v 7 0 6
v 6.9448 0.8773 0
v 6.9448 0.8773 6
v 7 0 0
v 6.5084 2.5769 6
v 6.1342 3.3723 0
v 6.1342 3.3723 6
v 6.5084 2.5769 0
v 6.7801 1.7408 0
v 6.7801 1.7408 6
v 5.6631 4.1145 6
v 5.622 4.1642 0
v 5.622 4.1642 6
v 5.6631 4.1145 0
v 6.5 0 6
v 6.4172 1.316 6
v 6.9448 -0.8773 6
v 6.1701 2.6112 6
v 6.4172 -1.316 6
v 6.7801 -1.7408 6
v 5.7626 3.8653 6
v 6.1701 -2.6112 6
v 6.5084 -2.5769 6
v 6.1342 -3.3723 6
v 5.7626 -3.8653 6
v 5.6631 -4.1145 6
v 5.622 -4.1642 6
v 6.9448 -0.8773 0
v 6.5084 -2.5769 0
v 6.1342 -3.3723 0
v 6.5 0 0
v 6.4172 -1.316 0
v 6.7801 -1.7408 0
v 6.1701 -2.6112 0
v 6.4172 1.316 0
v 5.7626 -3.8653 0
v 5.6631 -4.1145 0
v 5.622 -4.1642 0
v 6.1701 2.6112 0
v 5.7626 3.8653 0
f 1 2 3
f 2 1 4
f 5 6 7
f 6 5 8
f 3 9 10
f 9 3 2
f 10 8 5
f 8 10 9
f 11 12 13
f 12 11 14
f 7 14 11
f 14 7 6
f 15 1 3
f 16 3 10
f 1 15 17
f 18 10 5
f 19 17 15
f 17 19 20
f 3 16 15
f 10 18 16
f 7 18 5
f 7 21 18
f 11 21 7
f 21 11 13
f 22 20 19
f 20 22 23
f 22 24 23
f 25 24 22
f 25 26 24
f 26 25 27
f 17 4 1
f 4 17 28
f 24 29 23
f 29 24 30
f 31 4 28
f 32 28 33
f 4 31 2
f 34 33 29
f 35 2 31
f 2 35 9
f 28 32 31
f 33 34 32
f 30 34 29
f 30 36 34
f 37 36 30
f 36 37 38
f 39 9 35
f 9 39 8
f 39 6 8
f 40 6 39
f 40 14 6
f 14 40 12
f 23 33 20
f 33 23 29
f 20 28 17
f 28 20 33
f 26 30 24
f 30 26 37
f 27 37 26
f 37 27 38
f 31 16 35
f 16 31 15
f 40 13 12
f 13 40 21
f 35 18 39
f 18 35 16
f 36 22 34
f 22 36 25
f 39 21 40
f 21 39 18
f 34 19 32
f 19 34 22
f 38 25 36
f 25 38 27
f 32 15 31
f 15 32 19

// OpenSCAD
$fn = 50;


difference() {
	union() {
		cylinder(h = 6, r = 7.0000000000);
		translate(v = [-7.0000000000, 0, 0]) {
			cylinder(h = 6, r = 7.0000000000);
		}
	}
	union() {
		cylinder(h = 6, r = 3.2500000000);
		cylinder(h = 6, r = 1.8000000000);
		cylinder(h = 6, r = 1.8000000000);
		cylinder(h = 6, r = 1.8000000000);
		translate(v = [-11.5000000000, 0, 0]) {
			hull() {
				translate(v = [-3.7500000000, 0.0000000000, 0]) {
					cylinder(h = 6, r = 7.5000000000);
				}
				translate(v = [3.7500000000, 0.0000000000, 0]) {
					cylinder(h = 6, r = 7.5000000000);
				}
				translate(v = [-3.7500000000, -0.0000000000, 0]) {
					cylinder(h = 6, r = 7.5000000000);
				}
				translate(v = [3.7500000000, -0.0000000000, 0]) {
					cylinder(h = 6, r = 7.5000000000);
				}
			}
		}
		translate(v = [-4.0000000000, 0, 0.0000000000]) {
			cylinder(h = 6, r = 10.5000000000);
		}
	}
}
